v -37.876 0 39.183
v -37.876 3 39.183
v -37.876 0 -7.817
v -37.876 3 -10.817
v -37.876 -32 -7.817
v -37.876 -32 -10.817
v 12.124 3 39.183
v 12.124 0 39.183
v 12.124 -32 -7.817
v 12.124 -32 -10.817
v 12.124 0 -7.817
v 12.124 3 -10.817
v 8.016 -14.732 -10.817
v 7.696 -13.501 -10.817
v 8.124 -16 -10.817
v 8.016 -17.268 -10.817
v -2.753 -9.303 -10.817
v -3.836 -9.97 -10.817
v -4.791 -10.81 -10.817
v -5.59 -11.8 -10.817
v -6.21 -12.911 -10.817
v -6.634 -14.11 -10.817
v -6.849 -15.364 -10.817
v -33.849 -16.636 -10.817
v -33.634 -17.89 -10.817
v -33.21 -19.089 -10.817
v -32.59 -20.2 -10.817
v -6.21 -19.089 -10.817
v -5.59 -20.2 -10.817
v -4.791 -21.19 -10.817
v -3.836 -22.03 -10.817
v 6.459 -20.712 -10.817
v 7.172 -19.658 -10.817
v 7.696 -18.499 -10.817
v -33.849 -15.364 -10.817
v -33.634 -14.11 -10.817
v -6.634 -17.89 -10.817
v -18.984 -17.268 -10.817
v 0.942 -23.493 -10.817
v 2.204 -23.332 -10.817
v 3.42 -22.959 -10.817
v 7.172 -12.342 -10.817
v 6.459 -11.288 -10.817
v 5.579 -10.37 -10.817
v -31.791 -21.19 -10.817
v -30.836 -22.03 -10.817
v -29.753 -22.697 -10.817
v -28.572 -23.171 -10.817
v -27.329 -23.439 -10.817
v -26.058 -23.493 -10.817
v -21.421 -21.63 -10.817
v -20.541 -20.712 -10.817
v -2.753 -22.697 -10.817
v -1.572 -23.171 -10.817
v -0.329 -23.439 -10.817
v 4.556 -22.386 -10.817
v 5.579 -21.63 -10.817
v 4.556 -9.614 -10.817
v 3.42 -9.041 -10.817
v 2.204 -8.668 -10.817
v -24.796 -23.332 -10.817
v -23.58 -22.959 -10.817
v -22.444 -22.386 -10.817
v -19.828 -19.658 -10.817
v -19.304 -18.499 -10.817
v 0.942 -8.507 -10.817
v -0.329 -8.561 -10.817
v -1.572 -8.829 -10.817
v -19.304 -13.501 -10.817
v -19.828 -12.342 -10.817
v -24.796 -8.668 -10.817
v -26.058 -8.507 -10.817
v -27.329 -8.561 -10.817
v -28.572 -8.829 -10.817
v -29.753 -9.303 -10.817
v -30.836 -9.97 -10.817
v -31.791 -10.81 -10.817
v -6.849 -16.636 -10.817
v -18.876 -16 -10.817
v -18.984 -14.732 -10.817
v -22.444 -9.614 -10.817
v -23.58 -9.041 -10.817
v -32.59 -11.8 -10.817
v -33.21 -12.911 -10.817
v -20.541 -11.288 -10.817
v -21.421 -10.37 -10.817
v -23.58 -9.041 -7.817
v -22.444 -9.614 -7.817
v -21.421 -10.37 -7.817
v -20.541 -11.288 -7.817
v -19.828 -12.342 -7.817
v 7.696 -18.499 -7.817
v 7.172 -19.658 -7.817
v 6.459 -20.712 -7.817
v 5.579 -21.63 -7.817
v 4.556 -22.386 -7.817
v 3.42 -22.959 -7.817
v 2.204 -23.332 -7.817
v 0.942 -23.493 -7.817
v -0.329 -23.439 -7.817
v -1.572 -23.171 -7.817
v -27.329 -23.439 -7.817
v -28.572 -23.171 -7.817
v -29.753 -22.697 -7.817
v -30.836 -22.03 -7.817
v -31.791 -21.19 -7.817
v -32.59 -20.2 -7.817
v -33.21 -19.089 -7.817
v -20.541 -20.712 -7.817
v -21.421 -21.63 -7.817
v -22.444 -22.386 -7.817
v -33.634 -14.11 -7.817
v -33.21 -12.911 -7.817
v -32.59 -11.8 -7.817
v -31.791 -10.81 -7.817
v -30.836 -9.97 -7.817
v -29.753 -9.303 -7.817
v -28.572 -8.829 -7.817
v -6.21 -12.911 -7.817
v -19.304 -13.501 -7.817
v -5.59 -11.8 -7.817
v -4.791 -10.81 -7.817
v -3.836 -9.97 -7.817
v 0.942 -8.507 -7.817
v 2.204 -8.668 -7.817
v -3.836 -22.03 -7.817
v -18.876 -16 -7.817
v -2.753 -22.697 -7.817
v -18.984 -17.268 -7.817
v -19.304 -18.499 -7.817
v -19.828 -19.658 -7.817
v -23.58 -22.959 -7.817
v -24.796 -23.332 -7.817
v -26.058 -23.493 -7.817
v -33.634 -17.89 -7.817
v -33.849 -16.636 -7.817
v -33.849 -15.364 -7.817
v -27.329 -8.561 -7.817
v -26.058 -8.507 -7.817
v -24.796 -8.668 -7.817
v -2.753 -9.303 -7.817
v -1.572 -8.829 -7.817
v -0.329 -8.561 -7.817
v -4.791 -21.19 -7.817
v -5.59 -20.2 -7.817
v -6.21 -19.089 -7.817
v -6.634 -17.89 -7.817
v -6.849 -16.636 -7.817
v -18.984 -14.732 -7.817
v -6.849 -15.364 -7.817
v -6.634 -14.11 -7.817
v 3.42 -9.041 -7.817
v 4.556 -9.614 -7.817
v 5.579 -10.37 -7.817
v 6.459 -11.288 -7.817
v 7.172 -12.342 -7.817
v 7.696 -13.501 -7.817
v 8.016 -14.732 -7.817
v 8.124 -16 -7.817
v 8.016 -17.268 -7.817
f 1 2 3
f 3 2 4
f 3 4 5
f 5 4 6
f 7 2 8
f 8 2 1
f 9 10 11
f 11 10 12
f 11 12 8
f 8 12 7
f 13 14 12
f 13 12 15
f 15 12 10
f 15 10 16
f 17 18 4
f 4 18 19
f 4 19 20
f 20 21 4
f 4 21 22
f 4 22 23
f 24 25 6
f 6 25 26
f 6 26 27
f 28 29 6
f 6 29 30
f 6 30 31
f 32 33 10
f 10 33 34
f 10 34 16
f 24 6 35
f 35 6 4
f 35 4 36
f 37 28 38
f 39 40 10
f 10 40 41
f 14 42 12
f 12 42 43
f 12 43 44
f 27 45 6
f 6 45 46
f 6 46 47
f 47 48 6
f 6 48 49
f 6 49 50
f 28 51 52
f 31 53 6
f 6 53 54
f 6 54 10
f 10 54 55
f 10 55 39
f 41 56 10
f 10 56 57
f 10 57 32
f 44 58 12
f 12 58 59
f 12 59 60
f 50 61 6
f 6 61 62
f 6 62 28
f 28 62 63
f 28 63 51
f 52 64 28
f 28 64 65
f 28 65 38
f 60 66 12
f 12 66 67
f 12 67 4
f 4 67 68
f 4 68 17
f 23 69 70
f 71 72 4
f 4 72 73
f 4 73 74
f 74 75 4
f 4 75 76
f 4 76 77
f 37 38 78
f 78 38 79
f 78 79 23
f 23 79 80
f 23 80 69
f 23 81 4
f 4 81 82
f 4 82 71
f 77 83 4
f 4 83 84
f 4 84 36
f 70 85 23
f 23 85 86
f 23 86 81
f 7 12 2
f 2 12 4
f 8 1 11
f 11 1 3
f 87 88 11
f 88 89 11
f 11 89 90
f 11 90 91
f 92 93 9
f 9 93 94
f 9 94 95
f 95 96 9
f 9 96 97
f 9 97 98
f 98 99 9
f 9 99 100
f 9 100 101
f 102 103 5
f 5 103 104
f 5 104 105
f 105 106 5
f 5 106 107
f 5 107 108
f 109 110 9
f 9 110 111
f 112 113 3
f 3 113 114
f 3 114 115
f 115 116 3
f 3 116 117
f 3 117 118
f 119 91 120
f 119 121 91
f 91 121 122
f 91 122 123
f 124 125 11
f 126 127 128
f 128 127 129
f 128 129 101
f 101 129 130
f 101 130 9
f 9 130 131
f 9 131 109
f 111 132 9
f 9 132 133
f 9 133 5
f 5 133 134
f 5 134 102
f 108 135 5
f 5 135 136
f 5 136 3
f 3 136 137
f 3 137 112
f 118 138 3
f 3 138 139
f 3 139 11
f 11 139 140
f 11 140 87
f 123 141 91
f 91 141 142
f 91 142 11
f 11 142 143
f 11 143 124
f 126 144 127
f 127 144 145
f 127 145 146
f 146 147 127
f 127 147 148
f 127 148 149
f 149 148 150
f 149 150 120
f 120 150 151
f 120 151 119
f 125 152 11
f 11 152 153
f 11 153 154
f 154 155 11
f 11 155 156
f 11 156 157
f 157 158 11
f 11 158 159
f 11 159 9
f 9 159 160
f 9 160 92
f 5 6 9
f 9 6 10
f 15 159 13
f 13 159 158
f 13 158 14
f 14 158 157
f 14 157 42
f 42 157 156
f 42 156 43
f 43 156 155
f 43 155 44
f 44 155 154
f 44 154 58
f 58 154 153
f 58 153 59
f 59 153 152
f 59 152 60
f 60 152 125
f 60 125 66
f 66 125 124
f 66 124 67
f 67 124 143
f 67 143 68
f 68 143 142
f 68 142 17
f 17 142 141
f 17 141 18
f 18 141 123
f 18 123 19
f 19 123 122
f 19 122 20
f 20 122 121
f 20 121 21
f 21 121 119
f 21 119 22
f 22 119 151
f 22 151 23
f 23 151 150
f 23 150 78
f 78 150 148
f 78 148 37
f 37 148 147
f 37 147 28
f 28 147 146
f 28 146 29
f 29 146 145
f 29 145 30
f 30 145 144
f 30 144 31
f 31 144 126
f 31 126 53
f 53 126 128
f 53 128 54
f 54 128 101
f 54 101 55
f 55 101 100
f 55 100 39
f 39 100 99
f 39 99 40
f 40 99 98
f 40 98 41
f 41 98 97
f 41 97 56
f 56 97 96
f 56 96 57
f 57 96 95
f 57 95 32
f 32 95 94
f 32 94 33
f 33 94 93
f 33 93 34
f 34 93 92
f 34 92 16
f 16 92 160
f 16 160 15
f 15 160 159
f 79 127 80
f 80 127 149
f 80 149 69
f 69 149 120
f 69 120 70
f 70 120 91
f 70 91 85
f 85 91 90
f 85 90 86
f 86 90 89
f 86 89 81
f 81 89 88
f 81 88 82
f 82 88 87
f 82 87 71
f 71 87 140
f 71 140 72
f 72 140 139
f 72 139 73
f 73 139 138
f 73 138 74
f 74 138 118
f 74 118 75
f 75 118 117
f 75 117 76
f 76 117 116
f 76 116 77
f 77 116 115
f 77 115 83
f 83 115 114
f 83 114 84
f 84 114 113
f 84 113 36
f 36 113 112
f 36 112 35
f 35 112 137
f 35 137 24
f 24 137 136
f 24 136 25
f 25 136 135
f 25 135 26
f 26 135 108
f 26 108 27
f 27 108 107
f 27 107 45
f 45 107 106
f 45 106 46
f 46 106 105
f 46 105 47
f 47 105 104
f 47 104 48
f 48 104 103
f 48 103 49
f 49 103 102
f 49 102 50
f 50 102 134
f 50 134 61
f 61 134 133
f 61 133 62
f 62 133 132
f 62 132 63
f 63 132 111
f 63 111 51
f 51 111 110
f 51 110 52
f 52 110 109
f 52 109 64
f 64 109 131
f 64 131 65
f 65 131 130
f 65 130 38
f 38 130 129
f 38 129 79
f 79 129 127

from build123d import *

# Parameters (mm, degrees)
ESBO_O2_W                = 50
ESBO_O2_H                = 50
RESSALTO_EXTRUS_O1_DEPTH = 3
ESBO_O4_W                = 50
ESBO_O4_H                = 3
RESSALTO_EXTRUS_O2_DEPTH = 32
ESBO_O6_R                = 7.5
CORTE_EXTRUS_O1_DEPTH    = 69.319814067


with BuildPart() as part:
    # Esboço2 → Ressalto-extrusão1 (new body)
    with BuildSketch(Plane(origin=(0, 0, 0), x_dir=(1, 0, 0), z_dir=(0, 1, 0))):
        with Locations((-12.876074165, -14.183267942)):
            Rectangle(ESBO_O2_W, ESBO_O2_H)
    extrude(amount=RESSALTO_EXTRUS_O1_DEPTH)

    # Esboço4 → Ressalto-extrusão2 (add)
    with BuildSketch(Plane(origin=(0, 0, 0), x_dir=(-1, 0, 0), z_dir=(0, -1, 0))):
        with Locations((12.876074165, 9.316732058)):
            Rectangle(ESBO_O4_W, ESBO_O4_H)
    extrude(amount=RESSALTO_EXTRUS_O2_DEPTH)

    # Esboço6 → Corte-extrusão1 (cut, through all)
    with BuildSketch(Plane.XY.offset(-7.816732058)):
        with Locations((-26.376074165, -16)):
            Circle(ESBO_O6_R)
        with Locations((0.623925835, -16)):
            Circle(ESBO_O6_R)
    extrude(amount=-CORTE_EXTRUS_O1_DEPTH, mode=Mode.SUBTRACT)


solid = part.part
